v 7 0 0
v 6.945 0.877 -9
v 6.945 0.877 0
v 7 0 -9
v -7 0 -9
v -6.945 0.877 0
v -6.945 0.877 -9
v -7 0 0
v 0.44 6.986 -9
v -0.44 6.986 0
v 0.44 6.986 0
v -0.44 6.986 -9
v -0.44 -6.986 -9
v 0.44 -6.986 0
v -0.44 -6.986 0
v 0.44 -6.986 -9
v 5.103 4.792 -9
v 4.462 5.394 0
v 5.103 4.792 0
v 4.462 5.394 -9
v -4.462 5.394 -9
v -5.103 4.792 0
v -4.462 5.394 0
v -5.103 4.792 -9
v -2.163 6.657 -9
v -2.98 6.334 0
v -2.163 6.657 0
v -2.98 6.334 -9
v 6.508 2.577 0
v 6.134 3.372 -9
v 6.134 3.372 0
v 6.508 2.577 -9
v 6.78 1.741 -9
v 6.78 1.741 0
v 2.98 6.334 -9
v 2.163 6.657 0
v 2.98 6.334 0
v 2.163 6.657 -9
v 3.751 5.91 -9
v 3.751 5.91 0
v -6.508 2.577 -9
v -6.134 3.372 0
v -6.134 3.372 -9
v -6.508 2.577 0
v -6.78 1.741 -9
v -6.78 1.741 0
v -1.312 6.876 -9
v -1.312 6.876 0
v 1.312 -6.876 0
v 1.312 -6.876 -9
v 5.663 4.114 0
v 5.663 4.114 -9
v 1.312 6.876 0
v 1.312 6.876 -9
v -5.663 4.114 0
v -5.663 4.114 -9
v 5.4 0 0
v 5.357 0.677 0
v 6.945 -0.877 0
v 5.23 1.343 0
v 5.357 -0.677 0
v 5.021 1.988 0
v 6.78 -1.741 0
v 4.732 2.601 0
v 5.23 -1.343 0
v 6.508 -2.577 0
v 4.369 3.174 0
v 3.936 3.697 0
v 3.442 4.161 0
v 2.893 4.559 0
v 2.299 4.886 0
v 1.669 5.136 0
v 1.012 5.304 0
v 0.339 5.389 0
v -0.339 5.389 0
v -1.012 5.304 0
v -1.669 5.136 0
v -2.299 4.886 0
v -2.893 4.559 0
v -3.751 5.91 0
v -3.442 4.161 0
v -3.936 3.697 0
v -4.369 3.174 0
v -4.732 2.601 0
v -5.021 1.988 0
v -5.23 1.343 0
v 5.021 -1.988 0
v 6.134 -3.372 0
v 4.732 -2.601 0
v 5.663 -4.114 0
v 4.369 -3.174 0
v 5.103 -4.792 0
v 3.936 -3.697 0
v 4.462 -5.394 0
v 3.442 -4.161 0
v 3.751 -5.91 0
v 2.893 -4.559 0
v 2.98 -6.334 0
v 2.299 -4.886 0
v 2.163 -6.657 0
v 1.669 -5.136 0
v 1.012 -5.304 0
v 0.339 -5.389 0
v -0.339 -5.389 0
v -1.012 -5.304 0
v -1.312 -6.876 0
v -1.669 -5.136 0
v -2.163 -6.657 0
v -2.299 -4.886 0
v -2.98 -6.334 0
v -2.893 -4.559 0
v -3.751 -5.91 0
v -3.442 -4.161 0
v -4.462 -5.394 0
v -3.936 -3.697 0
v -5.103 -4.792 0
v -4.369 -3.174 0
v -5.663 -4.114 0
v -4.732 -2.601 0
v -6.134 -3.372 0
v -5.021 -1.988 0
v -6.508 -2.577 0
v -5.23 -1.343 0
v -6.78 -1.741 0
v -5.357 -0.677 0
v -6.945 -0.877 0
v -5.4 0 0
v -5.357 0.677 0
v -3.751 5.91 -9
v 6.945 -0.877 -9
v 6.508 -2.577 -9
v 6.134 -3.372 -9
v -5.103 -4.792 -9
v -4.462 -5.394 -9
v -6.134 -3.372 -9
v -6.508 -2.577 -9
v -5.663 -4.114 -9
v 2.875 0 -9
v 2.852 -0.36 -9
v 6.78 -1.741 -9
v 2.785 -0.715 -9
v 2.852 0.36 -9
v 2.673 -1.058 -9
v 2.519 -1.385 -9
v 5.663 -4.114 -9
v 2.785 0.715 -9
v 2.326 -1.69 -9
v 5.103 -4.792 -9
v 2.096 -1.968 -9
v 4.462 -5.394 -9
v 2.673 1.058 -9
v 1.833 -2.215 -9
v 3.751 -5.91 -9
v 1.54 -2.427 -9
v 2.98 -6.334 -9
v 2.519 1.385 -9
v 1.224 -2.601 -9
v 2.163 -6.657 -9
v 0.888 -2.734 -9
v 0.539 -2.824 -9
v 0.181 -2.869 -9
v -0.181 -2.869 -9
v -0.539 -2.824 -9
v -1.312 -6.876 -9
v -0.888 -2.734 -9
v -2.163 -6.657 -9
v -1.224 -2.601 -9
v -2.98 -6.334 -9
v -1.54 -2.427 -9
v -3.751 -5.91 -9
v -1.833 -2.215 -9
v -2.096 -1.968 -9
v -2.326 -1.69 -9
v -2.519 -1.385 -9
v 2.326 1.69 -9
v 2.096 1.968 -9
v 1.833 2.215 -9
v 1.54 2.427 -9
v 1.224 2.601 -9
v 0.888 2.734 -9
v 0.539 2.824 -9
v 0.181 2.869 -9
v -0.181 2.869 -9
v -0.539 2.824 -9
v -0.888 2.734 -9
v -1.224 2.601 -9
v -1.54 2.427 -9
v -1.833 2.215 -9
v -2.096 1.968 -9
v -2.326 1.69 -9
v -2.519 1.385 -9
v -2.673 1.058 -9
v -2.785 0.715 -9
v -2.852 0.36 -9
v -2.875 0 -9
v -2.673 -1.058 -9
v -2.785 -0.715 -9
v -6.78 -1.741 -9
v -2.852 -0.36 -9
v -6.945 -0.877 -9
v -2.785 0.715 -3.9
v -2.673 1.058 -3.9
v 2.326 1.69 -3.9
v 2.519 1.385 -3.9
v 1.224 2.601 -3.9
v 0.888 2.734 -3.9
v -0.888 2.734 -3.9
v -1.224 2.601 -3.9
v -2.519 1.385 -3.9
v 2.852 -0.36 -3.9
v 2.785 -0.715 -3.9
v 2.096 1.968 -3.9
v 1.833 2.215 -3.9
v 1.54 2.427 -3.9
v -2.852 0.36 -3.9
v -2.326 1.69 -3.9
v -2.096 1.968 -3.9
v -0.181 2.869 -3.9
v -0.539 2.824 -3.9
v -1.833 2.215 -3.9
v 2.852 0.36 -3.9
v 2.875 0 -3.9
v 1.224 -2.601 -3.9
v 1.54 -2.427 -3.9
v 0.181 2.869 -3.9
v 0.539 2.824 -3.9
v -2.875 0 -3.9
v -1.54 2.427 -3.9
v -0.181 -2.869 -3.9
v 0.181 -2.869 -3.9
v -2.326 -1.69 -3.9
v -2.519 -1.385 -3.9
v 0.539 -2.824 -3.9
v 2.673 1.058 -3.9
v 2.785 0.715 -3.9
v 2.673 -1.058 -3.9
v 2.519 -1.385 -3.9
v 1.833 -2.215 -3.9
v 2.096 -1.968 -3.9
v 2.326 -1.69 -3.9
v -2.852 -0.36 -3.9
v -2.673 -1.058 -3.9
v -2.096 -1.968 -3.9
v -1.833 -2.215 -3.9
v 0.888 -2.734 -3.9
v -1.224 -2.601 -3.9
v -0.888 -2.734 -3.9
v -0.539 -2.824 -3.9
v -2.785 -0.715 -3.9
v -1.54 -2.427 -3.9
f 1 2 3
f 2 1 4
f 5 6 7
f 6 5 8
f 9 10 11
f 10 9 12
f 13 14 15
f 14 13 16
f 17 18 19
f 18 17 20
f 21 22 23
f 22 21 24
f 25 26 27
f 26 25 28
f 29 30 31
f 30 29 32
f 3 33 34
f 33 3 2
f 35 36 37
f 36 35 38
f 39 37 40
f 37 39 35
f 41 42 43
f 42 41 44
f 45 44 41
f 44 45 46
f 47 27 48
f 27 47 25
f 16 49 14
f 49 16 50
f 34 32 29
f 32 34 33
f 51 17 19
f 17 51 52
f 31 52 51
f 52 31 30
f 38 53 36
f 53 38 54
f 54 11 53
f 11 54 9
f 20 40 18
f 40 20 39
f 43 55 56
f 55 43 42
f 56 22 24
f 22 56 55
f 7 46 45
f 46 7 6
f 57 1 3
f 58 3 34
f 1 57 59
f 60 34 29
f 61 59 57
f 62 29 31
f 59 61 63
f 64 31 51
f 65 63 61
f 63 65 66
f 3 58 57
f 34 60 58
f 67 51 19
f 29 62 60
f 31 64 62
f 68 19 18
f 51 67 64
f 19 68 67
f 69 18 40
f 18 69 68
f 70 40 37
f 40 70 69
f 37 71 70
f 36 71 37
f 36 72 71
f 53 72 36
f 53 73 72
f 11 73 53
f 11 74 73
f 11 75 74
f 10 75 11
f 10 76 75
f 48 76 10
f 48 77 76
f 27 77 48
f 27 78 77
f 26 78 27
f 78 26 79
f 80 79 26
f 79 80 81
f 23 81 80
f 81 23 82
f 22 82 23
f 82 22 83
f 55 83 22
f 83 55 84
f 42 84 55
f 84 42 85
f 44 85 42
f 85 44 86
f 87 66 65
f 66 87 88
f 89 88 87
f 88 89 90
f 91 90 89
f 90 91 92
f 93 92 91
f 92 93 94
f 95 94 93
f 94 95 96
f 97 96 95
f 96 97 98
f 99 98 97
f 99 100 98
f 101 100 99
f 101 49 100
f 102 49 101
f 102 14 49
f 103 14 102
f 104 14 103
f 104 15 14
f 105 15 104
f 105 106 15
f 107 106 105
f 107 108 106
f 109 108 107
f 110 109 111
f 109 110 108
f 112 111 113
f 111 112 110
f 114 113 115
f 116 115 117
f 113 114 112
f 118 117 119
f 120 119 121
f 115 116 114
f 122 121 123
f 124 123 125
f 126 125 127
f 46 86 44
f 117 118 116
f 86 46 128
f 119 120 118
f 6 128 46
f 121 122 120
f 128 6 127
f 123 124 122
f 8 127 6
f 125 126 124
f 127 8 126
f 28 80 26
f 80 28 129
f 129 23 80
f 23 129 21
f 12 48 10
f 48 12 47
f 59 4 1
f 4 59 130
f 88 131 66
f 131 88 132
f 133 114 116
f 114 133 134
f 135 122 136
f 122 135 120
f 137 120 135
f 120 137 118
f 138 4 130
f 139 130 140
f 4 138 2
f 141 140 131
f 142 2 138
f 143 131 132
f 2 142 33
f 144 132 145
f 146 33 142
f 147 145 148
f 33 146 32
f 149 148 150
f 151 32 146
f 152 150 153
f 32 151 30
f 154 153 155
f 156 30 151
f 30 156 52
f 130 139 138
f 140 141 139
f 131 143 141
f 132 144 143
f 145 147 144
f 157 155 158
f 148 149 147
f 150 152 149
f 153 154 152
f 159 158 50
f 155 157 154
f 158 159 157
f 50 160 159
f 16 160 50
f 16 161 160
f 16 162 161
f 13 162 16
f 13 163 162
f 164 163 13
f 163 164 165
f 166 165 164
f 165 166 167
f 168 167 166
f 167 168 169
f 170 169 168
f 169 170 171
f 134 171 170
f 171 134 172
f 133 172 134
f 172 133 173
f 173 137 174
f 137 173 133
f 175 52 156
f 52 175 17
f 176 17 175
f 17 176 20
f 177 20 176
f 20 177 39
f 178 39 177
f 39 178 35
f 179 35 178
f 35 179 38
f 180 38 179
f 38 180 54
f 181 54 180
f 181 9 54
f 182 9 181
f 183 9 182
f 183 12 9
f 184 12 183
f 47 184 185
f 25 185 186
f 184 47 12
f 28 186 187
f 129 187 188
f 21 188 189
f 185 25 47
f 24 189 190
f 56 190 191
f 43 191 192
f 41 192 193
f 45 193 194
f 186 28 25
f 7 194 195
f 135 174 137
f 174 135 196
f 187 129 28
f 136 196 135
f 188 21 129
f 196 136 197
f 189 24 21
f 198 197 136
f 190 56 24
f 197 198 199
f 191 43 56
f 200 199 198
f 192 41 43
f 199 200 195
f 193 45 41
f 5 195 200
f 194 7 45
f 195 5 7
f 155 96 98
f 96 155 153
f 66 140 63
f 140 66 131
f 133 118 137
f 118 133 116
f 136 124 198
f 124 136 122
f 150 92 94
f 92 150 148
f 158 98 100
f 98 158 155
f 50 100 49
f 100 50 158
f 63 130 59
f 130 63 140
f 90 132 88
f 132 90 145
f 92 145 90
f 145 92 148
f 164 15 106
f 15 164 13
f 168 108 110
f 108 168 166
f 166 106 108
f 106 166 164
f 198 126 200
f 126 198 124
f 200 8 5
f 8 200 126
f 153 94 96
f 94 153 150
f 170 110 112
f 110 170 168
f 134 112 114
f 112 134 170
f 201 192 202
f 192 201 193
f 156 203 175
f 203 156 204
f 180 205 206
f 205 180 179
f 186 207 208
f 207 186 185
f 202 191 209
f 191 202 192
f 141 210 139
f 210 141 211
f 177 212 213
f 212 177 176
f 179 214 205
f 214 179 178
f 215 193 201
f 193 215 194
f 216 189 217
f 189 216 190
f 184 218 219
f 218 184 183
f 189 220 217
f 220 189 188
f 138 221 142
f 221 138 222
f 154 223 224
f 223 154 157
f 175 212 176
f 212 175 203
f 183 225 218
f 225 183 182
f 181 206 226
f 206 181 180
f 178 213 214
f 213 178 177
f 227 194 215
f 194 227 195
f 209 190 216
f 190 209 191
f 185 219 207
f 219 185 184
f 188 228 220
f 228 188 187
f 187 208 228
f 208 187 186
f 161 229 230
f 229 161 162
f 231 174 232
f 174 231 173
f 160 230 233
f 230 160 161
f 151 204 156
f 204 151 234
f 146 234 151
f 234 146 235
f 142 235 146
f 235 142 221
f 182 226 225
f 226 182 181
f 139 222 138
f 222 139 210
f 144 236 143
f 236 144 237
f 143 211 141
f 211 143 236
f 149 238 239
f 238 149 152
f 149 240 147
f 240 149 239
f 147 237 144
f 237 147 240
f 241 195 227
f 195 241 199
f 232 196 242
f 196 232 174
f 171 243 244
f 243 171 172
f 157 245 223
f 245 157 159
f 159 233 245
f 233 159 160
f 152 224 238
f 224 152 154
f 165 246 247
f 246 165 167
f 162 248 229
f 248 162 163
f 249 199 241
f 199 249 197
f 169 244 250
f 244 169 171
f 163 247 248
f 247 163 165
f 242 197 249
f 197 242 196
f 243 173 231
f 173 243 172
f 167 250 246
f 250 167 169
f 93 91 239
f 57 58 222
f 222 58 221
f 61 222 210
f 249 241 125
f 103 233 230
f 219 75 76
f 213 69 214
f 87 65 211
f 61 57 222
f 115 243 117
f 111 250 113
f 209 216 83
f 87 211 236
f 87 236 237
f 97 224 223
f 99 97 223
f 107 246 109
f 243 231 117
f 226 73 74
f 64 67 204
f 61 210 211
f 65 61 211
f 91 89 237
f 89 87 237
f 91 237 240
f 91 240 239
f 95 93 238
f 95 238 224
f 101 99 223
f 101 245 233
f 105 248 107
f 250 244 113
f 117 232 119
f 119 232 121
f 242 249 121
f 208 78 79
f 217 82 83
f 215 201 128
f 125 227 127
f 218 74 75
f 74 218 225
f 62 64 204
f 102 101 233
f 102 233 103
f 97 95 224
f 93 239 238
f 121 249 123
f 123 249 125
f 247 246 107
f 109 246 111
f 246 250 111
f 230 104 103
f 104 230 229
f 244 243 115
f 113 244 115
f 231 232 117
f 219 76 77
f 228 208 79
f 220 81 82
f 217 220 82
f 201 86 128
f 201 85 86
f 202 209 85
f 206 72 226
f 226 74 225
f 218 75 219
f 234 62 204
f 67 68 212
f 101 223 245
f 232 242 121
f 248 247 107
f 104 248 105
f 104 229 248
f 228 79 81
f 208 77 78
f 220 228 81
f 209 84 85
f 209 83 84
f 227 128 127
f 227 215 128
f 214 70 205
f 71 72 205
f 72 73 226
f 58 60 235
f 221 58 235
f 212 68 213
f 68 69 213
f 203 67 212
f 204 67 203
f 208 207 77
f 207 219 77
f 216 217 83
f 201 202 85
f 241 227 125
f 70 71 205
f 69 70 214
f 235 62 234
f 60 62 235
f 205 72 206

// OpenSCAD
$fn = 50;


difference() {
	union() {
		translate(v = [0, 0, -9.0000000000]) {
			cylinder(h = 9, r = 7.0000000000);
		}
		translate(v = [0, 0, -12.0000000000]) {
			cylinder(h = 12, r = 2.8750000000);
		}
	}
	union() {
		translate(v = [0, 0, 0]) {
			rotate(a = [0, 0, 0]) {
				difference() {
					union() {
						translate(v = [0, 0, -12.0000000000]) {
							cylinder(h = 12, r = 2.6000000000);
						}
						translate(v = [0, 0, -3.9000000000]) {
							cylinder(h = 3.9000000000, r1 = 2.8750000000, r2 = 5.4000000000);
						}
						translate(v = [0, 0, -12.0000000000]) {
							cylinder(h = 12, r = 2.8750000000);
						}
						translate(v = [0, 0, -12.0000000000]) {
							cylinder(h = 12, r = 2.6000000000);
						}
					}
					union();
				}
			}
		}
	}
}
